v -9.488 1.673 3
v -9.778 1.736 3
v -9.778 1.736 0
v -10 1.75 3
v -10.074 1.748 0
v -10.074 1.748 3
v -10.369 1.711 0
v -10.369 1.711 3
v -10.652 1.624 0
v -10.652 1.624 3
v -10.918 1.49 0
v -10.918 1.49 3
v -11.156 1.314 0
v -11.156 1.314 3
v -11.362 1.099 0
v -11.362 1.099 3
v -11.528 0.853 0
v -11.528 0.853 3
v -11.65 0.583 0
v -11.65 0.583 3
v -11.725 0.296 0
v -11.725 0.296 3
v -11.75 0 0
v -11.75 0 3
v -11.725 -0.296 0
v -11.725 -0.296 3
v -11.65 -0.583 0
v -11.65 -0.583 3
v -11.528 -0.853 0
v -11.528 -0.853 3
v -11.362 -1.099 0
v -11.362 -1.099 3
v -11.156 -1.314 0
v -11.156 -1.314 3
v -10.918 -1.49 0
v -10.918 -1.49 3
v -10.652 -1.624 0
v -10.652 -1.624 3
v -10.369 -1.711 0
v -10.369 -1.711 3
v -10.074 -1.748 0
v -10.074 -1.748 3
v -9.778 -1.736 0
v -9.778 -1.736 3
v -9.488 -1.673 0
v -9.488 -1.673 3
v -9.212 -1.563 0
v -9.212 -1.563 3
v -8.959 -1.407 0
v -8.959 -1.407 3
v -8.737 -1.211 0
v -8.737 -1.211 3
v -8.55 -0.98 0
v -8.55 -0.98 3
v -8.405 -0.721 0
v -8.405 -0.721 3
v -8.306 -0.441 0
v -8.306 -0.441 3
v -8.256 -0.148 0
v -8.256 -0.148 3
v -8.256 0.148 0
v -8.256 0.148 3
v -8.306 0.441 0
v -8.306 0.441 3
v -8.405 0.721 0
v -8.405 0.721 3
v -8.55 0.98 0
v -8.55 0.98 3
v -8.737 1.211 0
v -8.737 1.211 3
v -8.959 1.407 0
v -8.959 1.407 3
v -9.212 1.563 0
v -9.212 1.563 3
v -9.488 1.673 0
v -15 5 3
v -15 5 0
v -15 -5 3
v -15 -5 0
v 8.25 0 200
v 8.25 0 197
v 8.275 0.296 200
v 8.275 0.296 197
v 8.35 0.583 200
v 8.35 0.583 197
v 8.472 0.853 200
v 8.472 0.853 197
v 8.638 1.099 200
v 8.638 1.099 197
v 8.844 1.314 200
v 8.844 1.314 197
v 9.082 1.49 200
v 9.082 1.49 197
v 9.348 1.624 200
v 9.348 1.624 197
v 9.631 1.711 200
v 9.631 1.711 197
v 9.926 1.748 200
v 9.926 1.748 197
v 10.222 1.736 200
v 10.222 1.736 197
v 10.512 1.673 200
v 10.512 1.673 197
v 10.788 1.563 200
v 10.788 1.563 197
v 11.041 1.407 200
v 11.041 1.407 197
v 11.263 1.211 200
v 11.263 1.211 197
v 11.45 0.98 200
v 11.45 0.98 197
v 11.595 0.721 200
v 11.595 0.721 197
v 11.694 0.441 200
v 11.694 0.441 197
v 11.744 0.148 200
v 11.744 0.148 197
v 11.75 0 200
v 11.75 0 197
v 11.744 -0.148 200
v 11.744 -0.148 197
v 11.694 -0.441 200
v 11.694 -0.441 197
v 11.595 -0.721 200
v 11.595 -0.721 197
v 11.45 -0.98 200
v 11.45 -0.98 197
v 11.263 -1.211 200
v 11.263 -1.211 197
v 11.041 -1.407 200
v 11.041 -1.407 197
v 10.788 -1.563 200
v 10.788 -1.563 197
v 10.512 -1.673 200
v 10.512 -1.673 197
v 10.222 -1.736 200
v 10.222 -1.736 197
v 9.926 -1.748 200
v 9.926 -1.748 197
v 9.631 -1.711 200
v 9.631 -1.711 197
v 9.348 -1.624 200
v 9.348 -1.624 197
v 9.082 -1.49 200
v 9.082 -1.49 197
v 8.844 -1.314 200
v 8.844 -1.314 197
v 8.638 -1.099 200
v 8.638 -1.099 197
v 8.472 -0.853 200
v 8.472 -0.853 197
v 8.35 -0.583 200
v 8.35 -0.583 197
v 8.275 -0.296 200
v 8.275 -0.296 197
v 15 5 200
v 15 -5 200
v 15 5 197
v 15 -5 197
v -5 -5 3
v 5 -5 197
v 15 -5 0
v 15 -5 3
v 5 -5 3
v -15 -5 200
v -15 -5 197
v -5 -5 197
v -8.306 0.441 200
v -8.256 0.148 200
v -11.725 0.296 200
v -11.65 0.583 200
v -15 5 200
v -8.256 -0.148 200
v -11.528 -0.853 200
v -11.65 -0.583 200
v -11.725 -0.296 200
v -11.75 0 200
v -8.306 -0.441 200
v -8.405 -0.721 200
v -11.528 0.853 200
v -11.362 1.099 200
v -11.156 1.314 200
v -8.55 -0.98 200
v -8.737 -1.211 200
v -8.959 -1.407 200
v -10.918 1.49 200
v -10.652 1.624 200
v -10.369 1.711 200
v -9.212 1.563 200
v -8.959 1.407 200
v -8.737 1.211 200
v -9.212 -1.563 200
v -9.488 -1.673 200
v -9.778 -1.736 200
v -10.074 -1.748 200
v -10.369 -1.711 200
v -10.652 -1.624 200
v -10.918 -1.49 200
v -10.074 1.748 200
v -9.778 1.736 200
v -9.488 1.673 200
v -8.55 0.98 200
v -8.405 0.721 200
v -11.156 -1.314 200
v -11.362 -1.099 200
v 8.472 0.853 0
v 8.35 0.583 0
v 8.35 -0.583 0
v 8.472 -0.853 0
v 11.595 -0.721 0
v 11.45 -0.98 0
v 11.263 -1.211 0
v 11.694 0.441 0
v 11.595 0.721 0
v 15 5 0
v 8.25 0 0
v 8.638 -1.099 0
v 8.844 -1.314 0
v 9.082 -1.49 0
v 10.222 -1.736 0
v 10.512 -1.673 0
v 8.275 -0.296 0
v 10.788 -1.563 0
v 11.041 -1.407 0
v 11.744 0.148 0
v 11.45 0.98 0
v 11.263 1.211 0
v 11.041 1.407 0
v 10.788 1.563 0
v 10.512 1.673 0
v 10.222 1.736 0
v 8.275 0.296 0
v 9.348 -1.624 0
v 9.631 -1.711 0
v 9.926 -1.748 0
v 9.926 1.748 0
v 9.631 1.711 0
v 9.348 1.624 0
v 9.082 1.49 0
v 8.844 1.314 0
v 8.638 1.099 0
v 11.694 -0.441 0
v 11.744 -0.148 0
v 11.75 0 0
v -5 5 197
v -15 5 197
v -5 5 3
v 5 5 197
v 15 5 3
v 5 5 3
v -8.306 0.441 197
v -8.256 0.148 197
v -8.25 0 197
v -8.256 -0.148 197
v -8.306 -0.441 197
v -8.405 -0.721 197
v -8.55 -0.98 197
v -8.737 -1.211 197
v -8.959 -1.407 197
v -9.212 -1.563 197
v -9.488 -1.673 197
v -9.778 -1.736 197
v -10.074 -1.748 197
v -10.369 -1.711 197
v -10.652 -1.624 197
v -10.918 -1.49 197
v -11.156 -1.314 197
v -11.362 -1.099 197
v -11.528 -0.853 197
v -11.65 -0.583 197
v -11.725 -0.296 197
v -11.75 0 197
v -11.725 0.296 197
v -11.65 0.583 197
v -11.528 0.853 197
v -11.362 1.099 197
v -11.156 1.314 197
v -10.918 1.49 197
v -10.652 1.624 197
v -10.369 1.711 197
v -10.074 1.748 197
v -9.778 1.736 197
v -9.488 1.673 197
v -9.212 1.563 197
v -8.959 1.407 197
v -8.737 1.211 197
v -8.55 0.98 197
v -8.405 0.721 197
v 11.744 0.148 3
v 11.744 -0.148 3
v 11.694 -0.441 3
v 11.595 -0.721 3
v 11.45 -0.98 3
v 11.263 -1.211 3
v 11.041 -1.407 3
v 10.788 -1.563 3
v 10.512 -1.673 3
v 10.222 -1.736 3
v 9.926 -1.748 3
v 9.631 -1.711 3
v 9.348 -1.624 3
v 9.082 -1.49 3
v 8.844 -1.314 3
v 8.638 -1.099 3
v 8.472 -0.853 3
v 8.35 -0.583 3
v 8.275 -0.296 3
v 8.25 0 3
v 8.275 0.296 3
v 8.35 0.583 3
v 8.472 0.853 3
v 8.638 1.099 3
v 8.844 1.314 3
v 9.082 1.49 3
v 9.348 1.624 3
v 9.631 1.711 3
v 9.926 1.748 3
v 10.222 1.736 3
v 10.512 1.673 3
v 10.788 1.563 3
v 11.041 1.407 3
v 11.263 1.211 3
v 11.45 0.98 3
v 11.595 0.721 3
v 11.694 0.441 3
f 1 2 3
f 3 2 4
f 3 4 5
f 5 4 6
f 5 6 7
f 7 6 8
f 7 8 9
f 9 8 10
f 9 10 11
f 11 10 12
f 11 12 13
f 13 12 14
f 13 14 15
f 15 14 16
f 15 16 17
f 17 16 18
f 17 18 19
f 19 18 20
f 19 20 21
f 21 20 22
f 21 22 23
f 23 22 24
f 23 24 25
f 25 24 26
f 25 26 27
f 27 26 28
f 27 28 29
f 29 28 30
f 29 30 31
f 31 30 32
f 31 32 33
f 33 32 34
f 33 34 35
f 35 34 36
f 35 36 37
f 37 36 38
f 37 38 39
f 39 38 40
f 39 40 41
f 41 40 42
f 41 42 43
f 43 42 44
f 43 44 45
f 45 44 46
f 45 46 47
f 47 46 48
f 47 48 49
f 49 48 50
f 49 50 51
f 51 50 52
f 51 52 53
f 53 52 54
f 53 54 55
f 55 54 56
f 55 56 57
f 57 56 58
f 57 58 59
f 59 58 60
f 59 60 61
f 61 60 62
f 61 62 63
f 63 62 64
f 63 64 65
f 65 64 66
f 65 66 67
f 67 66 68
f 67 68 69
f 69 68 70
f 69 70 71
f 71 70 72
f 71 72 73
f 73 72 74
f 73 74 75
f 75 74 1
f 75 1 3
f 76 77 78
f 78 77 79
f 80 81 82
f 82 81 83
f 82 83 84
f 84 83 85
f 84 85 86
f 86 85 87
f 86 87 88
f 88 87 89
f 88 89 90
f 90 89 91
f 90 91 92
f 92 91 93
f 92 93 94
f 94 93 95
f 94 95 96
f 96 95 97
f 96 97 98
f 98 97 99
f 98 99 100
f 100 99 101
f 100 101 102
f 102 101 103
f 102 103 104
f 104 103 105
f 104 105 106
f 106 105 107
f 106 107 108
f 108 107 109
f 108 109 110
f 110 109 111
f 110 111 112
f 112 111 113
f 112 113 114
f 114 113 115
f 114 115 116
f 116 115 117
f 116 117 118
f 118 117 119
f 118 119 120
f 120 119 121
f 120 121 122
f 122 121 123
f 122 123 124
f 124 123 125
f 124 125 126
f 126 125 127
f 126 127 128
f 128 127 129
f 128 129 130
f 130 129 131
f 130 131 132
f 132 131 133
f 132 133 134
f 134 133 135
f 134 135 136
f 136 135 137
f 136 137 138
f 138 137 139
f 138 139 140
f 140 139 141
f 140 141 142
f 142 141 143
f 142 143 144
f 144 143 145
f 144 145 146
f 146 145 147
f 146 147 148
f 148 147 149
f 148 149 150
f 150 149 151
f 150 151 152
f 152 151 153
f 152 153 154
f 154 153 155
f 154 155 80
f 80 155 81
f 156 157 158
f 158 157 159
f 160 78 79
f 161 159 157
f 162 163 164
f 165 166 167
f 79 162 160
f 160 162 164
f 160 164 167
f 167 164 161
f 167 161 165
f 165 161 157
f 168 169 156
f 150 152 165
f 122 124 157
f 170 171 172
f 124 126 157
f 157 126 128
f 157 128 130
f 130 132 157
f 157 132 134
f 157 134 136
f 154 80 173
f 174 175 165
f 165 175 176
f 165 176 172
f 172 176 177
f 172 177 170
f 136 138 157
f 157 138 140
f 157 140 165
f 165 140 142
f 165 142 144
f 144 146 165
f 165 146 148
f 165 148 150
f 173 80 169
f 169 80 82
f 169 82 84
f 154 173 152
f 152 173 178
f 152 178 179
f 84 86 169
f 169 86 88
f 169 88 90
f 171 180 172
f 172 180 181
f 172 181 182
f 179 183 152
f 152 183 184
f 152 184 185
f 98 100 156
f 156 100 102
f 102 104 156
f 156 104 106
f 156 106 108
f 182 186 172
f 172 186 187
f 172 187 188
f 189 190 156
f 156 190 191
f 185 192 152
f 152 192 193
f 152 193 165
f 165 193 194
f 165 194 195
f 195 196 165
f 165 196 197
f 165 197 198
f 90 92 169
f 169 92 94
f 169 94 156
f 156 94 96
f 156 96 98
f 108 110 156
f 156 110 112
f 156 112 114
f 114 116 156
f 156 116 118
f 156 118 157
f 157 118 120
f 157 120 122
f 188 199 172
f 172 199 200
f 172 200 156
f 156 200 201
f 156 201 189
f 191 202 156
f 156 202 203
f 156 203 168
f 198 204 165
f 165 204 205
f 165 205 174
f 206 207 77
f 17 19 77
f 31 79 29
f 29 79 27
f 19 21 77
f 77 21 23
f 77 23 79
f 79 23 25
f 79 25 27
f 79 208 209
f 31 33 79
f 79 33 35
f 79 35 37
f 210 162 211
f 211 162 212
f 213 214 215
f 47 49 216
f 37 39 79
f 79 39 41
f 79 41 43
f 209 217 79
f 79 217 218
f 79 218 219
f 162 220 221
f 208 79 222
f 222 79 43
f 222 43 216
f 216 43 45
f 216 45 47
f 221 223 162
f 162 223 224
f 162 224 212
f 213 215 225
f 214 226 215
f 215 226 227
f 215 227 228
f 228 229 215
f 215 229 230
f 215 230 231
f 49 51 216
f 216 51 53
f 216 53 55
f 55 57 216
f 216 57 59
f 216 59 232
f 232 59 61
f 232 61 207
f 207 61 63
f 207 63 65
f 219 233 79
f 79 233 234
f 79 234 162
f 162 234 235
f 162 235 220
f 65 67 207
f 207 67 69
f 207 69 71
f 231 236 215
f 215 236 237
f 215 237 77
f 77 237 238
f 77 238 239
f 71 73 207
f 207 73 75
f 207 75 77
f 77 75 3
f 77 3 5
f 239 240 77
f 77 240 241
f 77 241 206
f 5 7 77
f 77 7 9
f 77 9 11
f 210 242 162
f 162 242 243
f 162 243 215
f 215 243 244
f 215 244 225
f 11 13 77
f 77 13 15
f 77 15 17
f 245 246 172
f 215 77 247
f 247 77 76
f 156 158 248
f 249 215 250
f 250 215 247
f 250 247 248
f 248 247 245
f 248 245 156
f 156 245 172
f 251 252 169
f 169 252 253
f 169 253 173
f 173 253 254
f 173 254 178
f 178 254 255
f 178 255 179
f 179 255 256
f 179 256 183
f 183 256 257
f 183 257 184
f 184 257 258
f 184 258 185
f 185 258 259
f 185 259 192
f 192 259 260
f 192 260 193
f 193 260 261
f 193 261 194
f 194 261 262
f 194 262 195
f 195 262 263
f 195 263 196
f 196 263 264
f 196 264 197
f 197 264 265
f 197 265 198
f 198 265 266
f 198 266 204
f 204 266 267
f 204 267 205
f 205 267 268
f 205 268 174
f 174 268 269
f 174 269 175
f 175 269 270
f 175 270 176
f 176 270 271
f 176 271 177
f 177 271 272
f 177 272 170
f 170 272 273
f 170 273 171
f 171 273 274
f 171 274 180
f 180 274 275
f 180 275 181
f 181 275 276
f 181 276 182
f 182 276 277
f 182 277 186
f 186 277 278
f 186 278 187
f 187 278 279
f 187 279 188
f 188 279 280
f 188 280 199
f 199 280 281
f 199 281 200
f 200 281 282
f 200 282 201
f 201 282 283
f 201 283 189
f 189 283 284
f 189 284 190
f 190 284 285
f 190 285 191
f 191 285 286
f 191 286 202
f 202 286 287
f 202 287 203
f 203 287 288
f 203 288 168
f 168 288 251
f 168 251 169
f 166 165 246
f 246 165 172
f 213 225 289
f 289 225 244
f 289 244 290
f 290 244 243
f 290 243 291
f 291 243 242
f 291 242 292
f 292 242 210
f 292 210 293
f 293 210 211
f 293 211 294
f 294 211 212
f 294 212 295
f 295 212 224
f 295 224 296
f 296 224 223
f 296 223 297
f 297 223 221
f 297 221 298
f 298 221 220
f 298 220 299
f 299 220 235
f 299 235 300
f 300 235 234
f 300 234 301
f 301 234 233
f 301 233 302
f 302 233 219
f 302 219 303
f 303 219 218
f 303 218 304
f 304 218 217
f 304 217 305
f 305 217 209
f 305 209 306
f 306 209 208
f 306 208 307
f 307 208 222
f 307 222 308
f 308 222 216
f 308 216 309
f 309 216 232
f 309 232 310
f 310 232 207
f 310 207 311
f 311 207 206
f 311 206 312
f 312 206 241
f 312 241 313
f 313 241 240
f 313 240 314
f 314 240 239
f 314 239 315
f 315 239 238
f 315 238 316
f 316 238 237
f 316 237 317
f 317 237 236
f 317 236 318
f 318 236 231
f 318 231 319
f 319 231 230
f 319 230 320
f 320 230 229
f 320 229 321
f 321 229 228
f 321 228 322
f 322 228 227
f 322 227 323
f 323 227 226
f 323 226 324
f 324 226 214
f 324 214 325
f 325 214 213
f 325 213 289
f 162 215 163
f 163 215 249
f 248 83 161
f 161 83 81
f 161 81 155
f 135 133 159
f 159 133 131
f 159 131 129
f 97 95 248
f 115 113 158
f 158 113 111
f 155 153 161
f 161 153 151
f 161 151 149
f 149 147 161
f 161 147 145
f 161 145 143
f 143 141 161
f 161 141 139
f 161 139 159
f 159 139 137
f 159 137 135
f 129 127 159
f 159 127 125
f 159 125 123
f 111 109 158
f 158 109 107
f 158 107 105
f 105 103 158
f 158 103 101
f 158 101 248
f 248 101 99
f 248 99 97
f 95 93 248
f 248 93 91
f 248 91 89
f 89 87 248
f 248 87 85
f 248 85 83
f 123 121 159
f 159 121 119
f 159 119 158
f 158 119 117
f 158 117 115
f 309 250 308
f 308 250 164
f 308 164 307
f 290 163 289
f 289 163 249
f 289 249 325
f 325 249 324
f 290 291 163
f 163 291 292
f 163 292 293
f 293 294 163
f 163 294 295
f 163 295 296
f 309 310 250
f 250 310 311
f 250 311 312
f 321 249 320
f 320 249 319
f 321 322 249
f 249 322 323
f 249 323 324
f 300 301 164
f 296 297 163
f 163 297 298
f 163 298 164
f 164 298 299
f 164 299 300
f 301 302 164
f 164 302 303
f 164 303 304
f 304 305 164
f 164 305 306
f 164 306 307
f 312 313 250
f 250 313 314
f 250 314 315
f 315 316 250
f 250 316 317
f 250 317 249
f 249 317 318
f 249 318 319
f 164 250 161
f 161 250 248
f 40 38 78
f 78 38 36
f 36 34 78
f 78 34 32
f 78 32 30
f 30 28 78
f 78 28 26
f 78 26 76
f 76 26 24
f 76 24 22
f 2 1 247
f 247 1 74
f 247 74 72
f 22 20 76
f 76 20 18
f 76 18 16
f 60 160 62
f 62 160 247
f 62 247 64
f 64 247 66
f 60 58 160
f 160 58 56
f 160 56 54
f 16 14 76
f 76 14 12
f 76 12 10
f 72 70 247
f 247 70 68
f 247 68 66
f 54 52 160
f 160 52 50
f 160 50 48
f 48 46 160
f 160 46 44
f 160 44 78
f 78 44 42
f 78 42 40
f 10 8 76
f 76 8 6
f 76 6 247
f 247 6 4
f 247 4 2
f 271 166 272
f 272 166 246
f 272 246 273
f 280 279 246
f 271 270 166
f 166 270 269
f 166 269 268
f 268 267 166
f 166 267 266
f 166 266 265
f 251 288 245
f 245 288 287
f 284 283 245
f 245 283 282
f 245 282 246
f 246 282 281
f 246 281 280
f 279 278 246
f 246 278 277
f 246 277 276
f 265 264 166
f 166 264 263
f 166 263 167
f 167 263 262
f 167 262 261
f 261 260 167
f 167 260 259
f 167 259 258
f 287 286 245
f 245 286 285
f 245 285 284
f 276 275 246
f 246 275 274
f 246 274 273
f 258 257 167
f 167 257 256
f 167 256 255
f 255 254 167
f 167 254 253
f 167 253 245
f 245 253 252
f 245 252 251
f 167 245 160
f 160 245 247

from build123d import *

# Parameters (mm, degrees)
SKETCH_1_W          = 10
SKETCH_1_H          = 10
SKETCH_1_R          = 1.75
EXTRUDE_1_DEPTH     = 200
SKETCH_2_W          = 194
SKETCH_2_H          = 10
CUT_EXTRUDE_1_DEPTH = 10
SKETCH_3_W          = 194
SKETCH_3_H          = 10
CUT_EXTRUDE_2_DEPTH = 10


with BuildPart() as part:
    # 草图1 → 凸台-拉伸1 (new body)
    # profile 1 of 3: a face of its own
    with BuildSketch(Plane.XY):
        Rectangle(SKETCH_1_W, SKETCH_1_H)
    # profile 2 of 3: a face of its own
    with BuildSketch(Plane.XY):
        with Locations((-10, 0)):
            Rectangle(SKETCH_1_W, SKETCH_1_H)
        with Locations(Location((-10, 0, 0), (0, 0, 180))):
            Circle(SKETCH_1_R, mode=Mode.SUBTRACT)
    # profile 3 of 3: a face of its own
    with BuildSketch(Plane.XY):
        with Locations((10, 0)):
            Rectangle(SKETCH_1_W, SKETCH_1_H)
        with Locations((10, 0)):
            Circle(SKETCH_1_R, mode=Mode.SUBTRACT)
    extrude(amount=EXTRUDE_1_DEPTH)

    # 草图2 → 切除-拉伸1 (cut)
    with BuildSketch(Plane(origin=(15, 0, 0), x_dir=(0, 0, -1), z_dir=(1, 0, 0))):
        with Locations((-100, 0)):
            Rectangle(SKETCH_2_W, SKETCH_2_H)
    extrude(amount=-CUT_EXTRUDE_1_DEPTH, mode=Mode.SUBTRACT)

    # 草图3 → 切除-拉伸2 (cut)
    with BuildSketch(Plane.ZY.offset(15)):
        with Locations((100, 0)):
            Rectangle(SKETCH_3_W, SKETCH_3_H)
    extrude(amount=-CUT_EXTRUDE_2_DEPTH, mode=Mode.SUBTRACT)


solid = part.part
